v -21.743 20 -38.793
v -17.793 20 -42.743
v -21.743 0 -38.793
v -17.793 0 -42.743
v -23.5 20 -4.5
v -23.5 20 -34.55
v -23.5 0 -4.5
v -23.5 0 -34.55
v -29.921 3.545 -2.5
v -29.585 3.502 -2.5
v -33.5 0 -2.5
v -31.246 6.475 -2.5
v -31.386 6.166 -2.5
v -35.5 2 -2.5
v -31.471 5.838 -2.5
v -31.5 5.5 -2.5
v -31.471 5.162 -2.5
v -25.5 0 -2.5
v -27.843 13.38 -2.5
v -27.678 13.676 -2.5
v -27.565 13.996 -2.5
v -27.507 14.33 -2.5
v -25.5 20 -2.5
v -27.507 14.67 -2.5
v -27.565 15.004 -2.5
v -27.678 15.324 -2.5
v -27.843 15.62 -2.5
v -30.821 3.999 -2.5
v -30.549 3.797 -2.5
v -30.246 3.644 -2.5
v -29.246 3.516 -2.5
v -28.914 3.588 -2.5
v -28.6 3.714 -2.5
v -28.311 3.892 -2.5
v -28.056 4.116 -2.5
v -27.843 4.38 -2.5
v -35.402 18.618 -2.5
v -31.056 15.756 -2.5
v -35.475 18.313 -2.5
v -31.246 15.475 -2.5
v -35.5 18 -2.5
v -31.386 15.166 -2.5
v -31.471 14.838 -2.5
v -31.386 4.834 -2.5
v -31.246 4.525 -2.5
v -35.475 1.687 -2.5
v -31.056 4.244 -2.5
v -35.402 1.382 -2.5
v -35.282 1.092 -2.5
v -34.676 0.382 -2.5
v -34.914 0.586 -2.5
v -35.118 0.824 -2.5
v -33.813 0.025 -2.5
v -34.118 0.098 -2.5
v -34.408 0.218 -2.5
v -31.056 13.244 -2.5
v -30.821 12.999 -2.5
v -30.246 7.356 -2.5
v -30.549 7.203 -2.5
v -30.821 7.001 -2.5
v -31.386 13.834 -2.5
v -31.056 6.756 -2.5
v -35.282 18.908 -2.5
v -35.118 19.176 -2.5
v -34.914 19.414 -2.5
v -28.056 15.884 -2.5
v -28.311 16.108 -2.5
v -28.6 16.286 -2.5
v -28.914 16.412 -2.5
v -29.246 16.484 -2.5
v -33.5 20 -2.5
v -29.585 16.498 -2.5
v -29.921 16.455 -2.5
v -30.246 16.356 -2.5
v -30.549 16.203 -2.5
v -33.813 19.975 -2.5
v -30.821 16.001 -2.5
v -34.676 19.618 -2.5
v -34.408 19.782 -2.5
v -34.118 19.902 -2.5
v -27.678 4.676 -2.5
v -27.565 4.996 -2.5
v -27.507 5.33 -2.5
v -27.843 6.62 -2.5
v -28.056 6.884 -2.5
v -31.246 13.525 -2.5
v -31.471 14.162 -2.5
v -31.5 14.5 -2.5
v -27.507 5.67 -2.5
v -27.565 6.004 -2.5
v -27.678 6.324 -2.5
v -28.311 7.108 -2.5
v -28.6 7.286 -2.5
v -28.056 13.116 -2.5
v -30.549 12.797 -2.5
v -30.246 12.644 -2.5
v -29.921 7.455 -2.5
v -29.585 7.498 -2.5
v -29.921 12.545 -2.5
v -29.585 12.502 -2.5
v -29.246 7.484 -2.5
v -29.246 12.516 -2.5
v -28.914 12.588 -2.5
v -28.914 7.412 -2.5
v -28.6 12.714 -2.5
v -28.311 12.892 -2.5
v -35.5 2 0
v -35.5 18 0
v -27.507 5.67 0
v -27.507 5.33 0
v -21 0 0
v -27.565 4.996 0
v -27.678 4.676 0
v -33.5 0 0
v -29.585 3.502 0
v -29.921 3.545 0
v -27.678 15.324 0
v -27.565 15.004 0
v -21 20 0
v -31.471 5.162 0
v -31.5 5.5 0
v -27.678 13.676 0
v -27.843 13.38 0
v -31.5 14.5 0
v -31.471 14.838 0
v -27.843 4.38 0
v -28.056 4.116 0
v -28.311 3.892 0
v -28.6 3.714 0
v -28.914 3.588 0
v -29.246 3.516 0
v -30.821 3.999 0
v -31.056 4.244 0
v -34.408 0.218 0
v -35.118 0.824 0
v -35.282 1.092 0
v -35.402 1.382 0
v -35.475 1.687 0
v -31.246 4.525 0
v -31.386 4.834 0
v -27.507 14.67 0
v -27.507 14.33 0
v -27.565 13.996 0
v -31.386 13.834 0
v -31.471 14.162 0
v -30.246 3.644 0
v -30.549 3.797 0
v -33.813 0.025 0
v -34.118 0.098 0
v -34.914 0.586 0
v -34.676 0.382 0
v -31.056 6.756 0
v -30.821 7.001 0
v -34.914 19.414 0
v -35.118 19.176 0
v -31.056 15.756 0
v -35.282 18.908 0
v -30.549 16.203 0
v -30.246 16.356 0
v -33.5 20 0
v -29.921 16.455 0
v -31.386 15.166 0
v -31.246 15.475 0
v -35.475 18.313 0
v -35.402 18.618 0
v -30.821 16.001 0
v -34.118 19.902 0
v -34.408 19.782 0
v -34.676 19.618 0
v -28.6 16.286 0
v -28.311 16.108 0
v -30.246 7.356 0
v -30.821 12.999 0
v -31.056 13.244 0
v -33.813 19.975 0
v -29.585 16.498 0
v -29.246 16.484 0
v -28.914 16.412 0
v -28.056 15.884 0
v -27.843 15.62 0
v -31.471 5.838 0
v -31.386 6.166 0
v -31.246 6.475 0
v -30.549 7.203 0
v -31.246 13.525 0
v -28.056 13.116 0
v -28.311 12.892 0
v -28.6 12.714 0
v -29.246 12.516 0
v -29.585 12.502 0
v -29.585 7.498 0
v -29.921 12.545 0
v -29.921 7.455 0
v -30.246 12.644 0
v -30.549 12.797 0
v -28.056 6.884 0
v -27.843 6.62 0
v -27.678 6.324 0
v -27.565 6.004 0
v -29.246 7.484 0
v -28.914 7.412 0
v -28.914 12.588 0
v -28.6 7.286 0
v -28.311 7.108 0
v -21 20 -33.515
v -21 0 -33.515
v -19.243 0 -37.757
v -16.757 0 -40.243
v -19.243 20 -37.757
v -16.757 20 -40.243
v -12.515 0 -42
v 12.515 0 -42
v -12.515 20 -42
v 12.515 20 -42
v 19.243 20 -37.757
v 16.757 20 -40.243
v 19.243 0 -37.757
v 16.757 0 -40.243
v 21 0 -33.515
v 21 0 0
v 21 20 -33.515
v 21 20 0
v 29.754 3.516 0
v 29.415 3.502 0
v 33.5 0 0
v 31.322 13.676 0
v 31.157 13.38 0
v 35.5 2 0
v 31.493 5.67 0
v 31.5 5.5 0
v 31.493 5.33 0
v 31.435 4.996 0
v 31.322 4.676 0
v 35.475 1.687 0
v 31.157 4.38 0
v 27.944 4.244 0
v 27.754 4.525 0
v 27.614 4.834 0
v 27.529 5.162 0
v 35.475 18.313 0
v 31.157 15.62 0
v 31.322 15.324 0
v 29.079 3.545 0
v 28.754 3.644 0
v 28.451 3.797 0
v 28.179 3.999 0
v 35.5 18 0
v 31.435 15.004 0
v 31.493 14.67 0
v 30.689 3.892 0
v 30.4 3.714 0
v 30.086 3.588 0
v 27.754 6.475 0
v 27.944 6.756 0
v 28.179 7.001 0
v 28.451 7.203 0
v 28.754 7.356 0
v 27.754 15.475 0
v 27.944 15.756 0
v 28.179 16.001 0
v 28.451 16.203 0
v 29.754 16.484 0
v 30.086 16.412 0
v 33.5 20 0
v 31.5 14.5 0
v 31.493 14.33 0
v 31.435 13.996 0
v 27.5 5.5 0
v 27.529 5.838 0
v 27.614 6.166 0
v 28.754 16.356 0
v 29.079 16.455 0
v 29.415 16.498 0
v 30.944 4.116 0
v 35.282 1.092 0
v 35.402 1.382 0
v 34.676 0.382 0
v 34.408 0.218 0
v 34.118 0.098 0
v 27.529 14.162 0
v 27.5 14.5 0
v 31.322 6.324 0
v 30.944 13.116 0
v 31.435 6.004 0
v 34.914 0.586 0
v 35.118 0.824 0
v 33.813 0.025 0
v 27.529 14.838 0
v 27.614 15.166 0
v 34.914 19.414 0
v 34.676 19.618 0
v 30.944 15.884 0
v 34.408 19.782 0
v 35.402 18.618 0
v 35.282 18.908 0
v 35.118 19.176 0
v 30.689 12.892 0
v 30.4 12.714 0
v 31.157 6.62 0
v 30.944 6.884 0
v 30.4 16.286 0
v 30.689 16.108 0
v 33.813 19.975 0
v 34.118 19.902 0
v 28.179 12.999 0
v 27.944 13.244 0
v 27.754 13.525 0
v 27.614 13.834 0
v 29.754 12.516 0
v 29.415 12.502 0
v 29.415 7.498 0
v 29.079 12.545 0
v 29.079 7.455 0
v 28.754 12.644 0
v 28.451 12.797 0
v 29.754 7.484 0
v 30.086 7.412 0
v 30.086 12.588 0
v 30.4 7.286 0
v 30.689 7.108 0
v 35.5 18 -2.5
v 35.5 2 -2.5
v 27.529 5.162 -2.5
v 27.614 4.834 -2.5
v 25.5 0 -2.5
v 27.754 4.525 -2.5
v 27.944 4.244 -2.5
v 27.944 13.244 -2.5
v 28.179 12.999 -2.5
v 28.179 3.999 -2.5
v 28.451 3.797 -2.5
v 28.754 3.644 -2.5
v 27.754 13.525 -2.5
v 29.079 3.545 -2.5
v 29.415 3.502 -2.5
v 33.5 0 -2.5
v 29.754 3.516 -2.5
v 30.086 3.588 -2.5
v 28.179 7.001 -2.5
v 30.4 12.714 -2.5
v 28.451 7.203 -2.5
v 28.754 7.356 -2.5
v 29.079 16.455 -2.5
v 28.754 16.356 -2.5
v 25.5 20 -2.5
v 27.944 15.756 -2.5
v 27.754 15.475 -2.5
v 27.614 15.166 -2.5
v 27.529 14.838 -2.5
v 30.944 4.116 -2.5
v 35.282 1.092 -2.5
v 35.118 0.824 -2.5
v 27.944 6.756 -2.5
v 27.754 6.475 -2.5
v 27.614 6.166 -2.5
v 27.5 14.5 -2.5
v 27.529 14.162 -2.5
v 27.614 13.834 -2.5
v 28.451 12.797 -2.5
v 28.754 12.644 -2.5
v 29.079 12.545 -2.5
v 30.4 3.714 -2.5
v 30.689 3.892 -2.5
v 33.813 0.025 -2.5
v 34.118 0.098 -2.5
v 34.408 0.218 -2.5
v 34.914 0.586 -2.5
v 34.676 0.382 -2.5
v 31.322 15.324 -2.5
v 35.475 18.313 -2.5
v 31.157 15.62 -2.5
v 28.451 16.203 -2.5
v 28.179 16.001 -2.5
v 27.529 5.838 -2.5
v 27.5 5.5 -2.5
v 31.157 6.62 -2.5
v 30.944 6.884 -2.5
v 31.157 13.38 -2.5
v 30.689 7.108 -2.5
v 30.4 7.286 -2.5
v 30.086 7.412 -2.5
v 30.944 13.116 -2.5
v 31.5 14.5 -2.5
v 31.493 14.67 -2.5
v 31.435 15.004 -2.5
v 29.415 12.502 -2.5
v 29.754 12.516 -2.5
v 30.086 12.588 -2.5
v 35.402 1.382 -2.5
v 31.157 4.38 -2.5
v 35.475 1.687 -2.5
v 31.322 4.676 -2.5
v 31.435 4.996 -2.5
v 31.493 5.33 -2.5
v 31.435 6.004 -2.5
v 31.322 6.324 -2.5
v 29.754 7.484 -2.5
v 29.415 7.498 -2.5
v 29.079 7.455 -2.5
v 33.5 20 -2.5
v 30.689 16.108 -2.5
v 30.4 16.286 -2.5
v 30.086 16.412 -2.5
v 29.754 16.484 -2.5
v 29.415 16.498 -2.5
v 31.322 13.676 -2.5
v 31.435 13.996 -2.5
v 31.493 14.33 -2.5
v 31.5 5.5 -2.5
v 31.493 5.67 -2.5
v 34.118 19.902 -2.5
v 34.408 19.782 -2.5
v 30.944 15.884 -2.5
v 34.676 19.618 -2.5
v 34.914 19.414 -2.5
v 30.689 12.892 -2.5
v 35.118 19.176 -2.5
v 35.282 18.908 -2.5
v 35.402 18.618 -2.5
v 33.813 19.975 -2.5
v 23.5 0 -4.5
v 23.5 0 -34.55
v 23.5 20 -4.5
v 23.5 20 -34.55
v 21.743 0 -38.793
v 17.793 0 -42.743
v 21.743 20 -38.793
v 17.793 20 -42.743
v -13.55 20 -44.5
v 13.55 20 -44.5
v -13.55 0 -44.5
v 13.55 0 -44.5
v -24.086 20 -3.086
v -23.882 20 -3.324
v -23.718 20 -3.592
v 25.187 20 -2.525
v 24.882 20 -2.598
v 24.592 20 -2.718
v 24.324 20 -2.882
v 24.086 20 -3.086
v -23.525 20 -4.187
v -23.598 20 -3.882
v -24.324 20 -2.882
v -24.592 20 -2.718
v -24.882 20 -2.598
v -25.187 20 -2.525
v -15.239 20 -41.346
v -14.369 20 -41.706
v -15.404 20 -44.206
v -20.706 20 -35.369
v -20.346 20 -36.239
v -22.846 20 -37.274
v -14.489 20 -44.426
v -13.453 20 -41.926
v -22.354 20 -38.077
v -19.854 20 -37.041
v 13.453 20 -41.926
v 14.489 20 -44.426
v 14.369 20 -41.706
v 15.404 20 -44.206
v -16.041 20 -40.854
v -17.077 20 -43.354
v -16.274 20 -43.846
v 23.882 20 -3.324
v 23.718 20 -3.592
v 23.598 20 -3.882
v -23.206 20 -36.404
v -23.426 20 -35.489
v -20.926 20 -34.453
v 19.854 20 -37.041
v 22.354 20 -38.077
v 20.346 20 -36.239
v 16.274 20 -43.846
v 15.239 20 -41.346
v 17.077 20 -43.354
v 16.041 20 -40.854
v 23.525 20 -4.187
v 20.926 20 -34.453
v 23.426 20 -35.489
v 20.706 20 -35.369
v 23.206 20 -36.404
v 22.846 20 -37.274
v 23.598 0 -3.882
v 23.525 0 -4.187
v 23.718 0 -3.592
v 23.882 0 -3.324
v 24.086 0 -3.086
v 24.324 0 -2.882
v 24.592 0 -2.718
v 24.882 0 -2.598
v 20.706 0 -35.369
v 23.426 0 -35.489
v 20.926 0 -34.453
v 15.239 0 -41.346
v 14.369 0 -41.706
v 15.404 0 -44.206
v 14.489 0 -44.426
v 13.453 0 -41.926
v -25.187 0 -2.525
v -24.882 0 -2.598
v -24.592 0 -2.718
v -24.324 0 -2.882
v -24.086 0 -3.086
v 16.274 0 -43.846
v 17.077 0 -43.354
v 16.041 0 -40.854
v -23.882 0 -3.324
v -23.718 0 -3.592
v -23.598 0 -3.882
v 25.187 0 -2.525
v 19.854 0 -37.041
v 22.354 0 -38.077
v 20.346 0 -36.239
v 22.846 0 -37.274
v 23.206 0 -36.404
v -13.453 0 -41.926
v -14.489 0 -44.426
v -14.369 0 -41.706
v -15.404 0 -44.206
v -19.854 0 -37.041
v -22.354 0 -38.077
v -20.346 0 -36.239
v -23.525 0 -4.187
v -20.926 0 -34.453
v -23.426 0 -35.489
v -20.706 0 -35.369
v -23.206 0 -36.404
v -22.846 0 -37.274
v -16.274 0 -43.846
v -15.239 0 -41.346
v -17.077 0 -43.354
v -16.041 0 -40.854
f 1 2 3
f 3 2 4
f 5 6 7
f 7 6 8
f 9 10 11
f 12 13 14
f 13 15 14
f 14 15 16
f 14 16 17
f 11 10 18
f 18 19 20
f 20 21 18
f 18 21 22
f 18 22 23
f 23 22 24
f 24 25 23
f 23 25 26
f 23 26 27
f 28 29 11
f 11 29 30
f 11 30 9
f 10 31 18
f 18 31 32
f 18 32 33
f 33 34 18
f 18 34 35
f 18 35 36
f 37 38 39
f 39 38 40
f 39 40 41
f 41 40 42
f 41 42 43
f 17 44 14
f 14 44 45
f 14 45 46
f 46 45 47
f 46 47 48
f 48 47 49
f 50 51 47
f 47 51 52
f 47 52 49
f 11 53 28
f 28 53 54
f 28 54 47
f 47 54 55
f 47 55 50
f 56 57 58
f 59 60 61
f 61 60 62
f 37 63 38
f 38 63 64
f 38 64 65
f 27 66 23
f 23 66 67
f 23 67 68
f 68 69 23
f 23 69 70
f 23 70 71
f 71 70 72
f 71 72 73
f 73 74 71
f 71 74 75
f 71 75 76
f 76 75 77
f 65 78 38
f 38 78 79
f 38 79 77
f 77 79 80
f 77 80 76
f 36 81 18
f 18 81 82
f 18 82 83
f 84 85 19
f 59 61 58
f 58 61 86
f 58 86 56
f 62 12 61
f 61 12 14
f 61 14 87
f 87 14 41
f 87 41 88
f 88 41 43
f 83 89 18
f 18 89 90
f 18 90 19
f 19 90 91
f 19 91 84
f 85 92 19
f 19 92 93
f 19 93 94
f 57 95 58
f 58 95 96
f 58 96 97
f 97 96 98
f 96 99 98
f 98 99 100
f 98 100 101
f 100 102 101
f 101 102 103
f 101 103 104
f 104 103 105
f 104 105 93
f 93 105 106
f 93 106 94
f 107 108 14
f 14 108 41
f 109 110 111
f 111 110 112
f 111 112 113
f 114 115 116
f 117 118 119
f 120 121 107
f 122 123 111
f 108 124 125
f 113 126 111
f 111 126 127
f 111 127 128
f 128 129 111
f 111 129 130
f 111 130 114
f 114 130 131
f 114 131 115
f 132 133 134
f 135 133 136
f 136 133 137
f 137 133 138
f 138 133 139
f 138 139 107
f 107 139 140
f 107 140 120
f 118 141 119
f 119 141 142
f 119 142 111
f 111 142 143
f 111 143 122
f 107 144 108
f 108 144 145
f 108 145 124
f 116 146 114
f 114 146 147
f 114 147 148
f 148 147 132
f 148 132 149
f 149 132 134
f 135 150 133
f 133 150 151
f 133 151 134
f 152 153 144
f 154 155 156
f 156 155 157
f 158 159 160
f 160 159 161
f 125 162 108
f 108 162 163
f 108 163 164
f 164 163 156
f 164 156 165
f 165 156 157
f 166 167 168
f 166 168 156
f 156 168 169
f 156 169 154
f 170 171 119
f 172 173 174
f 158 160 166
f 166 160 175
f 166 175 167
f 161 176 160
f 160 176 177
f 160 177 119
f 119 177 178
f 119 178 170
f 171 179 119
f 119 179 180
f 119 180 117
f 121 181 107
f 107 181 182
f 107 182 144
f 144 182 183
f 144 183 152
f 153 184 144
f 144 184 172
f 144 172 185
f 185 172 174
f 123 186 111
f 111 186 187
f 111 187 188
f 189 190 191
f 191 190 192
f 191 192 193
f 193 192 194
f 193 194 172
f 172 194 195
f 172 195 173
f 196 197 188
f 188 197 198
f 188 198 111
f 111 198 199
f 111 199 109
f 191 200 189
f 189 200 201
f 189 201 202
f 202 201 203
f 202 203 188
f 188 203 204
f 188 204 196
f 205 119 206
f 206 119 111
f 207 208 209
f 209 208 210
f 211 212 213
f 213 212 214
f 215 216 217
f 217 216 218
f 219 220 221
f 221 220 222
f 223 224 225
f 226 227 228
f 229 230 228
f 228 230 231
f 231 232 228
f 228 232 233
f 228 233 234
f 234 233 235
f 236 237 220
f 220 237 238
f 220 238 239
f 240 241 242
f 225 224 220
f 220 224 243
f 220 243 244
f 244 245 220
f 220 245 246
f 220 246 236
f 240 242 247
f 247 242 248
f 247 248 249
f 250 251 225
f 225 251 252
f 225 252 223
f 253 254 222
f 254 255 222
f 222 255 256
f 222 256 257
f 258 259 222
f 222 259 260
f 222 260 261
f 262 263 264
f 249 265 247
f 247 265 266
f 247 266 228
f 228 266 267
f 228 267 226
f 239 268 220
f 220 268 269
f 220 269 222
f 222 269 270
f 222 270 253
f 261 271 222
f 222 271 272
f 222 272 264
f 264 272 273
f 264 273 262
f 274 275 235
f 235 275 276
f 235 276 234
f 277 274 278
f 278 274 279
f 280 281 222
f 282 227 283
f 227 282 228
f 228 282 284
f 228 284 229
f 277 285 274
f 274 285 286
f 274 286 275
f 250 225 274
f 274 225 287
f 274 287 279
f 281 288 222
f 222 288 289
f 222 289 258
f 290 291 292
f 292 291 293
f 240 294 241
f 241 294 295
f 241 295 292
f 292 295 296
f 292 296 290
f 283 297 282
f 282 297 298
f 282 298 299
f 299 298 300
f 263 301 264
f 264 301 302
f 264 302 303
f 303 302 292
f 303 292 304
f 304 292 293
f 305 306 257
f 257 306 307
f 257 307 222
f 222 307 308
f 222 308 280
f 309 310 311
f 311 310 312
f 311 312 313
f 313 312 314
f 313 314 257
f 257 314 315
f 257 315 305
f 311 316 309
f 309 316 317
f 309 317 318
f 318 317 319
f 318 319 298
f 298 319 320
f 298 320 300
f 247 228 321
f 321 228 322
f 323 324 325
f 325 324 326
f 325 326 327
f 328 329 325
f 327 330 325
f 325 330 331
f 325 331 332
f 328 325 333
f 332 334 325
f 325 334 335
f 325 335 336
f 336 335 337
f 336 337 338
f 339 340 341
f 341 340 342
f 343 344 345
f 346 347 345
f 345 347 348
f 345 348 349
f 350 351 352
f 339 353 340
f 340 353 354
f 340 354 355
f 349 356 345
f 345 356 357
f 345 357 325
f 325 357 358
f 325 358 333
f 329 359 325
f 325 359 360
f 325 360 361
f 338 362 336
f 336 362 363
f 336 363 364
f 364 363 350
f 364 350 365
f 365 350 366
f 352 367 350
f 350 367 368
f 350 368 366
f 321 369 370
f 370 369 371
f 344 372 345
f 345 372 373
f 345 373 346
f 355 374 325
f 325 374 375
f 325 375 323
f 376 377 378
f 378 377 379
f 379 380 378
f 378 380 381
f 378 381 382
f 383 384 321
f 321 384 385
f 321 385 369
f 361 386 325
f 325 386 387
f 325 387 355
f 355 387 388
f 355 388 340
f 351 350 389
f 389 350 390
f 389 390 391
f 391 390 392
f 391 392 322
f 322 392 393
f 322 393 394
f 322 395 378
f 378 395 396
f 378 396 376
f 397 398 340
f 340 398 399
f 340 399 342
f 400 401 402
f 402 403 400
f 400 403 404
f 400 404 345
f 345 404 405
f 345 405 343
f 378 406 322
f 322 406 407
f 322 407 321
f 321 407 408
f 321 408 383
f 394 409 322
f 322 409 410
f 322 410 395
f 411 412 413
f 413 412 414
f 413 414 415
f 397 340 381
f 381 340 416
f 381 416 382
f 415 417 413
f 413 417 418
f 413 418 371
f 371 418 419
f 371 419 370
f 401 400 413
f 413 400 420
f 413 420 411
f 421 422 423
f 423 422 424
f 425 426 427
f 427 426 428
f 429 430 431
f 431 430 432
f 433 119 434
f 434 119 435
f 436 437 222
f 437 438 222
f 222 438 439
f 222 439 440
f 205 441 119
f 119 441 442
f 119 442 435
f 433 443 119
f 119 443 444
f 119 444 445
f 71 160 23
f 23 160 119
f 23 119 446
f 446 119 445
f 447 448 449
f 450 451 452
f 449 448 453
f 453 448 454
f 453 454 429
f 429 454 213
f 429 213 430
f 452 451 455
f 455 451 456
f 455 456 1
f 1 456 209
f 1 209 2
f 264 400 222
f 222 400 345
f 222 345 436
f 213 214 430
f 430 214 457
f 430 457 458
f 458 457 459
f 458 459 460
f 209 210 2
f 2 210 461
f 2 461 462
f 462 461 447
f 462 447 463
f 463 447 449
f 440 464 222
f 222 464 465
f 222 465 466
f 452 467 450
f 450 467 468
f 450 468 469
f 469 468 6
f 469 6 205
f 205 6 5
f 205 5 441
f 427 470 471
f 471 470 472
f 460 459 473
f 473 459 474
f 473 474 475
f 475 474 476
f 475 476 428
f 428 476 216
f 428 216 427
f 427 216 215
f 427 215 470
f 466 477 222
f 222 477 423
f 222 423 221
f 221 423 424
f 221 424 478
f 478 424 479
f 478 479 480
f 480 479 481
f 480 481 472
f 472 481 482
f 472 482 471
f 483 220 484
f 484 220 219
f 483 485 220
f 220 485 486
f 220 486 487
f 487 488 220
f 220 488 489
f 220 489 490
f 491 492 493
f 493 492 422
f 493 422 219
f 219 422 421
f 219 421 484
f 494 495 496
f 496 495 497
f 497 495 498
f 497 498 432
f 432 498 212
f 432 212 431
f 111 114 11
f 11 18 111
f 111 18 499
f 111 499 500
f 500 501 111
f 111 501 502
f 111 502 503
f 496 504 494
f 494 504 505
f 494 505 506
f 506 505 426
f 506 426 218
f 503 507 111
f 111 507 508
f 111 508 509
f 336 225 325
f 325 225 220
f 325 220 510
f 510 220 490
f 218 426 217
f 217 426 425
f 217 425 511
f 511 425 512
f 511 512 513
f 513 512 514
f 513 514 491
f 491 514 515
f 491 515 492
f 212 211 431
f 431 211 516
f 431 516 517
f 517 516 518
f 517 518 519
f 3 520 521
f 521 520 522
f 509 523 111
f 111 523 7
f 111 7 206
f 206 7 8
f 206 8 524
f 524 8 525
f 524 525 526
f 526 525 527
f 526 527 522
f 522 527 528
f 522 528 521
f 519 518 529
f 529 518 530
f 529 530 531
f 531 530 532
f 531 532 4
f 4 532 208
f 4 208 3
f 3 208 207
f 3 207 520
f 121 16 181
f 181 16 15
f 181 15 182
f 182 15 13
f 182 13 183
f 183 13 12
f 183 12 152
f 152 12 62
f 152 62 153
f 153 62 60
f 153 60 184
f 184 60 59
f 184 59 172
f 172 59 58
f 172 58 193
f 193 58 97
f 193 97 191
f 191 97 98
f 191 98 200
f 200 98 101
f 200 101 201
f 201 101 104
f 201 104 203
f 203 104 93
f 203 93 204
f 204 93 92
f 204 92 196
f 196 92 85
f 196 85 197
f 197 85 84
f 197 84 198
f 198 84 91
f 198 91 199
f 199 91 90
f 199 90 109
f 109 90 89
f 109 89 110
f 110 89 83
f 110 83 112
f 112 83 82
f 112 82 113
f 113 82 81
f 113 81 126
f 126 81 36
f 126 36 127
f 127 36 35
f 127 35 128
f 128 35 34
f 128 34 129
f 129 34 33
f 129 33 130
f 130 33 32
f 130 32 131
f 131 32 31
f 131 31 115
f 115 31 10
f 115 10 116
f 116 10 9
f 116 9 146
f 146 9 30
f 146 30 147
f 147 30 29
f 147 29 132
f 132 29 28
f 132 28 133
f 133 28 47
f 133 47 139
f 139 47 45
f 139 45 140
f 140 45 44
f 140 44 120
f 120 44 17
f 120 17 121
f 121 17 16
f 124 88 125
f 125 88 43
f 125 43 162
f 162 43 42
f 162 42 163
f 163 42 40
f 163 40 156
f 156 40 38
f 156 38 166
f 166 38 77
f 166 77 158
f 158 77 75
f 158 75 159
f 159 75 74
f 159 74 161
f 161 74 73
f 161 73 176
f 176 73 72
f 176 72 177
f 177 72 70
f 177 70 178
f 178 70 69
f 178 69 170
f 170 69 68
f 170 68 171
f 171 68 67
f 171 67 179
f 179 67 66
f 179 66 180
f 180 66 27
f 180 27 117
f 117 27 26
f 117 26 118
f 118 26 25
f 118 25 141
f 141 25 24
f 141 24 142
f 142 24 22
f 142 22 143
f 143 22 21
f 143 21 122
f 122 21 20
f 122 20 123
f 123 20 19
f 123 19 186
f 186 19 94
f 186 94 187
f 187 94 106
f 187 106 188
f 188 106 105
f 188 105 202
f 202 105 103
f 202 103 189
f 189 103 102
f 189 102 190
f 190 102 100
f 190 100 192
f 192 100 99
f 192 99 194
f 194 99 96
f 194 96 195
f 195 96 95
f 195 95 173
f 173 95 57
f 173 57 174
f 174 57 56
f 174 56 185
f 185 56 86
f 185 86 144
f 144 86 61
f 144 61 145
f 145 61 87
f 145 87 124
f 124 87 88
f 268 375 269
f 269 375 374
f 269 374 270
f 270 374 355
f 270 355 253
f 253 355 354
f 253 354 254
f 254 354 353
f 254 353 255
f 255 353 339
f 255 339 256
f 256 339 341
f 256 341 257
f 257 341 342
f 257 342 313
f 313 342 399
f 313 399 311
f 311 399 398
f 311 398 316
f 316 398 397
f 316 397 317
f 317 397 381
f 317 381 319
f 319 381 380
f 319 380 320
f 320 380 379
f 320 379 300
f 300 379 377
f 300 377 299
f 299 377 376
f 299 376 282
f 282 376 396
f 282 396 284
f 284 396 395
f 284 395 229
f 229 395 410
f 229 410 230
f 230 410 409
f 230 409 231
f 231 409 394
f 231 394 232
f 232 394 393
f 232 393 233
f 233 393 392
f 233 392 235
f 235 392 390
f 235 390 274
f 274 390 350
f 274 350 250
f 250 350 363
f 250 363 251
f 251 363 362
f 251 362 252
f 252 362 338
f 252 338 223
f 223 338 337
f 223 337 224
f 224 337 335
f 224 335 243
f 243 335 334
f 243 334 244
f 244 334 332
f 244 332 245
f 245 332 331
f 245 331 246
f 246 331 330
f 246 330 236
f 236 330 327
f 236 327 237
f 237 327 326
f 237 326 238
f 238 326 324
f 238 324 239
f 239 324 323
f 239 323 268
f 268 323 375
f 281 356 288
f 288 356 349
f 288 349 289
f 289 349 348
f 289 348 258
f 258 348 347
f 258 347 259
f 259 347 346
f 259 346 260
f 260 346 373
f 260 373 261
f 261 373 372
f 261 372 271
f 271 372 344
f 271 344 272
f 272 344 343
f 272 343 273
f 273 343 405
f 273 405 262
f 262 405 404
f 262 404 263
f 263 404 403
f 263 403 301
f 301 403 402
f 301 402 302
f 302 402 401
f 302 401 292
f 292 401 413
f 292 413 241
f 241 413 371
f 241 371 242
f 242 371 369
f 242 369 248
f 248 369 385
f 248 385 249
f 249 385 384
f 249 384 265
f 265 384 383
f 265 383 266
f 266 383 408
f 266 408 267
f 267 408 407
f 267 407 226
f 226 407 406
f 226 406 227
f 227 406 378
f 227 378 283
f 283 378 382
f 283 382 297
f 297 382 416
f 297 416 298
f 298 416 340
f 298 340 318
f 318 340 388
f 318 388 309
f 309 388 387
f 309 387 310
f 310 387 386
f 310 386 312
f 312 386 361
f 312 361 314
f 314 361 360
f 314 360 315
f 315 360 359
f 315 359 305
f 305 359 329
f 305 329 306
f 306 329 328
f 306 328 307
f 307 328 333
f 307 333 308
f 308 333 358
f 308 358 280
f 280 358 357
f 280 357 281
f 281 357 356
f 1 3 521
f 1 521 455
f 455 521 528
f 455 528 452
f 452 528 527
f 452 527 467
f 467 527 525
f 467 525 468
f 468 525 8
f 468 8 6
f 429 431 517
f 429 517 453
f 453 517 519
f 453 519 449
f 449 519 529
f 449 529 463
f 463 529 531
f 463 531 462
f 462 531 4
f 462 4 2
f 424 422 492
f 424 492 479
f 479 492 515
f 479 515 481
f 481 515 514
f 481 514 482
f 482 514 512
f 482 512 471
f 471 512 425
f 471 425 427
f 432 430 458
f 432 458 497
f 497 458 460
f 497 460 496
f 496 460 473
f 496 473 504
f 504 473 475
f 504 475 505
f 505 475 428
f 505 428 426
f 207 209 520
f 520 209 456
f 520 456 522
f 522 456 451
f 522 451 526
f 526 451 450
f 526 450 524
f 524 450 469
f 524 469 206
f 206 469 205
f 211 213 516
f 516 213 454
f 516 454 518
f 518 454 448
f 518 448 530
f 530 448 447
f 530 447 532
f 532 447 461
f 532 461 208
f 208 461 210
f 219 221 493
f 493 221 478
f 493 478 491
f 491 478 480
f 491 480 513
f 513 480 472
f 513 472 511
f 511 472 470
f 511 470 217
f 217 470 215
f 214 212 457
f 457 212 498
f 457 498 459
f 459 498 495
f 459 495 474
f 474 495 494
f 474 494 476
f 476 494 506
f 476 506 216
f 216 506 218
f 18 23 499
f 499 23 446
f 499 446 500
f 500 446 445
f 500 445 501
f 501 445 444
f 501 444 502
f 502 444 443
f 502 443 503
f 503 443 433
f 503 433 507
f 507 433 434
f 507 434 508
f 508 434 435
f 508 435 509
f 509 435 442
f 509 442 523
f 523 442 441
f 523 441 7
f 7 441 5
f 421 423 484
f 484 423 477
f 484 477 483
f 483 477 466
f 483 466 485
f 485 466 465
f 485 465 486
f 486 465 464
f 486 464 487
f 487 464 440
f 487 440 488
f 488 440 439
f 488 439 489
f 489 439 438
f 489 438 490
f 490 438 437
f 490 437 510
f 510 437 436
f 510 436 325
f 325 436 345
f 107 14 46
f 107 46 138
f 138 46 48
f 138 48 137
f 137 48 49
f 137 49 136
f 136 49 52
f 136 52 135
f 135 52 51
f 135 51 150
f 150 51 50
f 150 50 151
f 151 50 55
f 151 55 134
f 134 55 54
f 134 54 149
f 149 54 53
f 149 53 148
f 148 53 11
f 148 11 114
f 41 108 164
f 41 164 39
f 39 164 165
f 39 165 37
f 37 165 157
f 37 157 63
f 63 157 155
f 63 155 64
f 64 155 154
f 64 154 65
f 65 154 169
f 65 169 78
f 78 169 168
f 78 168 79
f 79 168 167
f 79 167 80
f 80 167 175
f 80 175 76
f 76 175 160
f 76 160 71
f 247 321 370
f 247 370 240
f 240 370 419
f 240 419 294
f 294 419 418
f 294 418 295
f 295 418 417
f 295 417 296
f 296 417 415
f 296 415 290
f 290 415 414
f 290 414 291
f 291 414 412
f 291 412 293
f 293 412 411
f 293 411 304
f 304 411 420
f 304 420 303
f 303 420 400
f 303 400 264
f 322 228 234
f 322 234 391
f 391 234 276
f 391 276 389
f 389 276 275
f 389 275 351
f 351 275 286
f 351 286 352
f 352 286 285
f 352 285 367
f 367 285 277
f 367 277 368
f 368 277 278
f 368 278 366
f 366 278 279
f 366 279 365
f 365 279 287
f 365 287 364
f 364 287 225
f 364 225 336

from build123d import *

# Parameters (mm, degrees)
BOSS_EXTRUDE1_DEPTH = 20
SKETCH2_R           = 2
CUT_EXTRUDE1_DEPTH  = 59.51709152
FILLET1_R           = 6
FILLET2_R           = 6
FILLET3_R           = 2
FILLET4_R           = 2


with BuildPart() as part:
    # Sketch1 → Boss-Extrude1 (new body)
    with BuildSketch(Plane(origin=(0, 0, 0), x_dir=(1, 0, 0), z_dir=(0, 1, 0))):
        Polygon((-35.5, 0), (-21, 0), (-21, 36), (-15, 42), (15, 42), (21, 36), (21, 0), (35.5, 0), (35.5, 2.5), (23.5, 2.5), (23.5, 37.035533906), (16.035533906, 44.5), (-16.035533906, 44.5), (-23.5, 37.035533906), (-23.5, 2.5), (-35.5, 2.5), align=None)
    extrude(amount=BOSS_EXTRUDE1_DEPTH)

    # Sketch2 → Cut-Extrude1 (cut, through all)
    with BuildSketch(Plane(origin=(0, 0, -2.5), x_dir=(-1, 0, 0), z_dir=(0, 0, -1))):
        with Locations((29.5, 14.5)):
            Circle(SKETCH2_R)
        with Locations((29.5, 5.5)):
            Circle(SKETCH2_R)
    cut_extrude1 = extrude(amount=-CUT_EXTRUDE1_DEPTH, mode=Mode.SUBTRACT)

    # Mirror1: Cut-Extrude1 across plane
    add(cut_extrude1.mirror(Plane(origin=(0, 0, 0), x_dir=(0, 0, 1), z_dir=(1, 0, 0))), mode=Mode.SUBTRACT)

    # Fillet1
    fillet1_edges = [part.edges().sort_by_distance(p)[0] for p in [
        (-16.035533906, 10, -44.5),
        (16.035533906, 10, -44.5),
        (23.5, 10, -37.035533906),
        (-23.5, 10, -37.035533906),
    ]]
    fillet(fillet1_edges, radius=FILLET1_R)

    # Fillet2
    fillet2_edges = [part.edges().sort_by_distance(p)[0] for p in [
        (21, 10, -36),
        (15, 10, -42),
        (-15, 10, -42),
        (-21, 10, -36),
    ]]
    fillet(fillet2_edges, radius=FILLET2_R)

    # Fillet3
    fillet3_edges = [part.edges().sort_by_distance(p)[0] for p in [
        (23.5, 10, -2.5),
        (-23.5, 10, -2.5),
    ]]
    fillet(fillet3_edges, radius=FILLET3_R)

    # Fillet4
    fillet4_edges = [part.edges().sort_by_distance(p)[0] for p in [
        (-35.5, 20, -1.25),
        (35.5, 0, -1.25),
        (-35.5, 0, -1.25),
        (35.5, 20, -1.25),
    ]]
    fillet(fillet4_edges, radius=FILLET4_R)


solid = part.part
